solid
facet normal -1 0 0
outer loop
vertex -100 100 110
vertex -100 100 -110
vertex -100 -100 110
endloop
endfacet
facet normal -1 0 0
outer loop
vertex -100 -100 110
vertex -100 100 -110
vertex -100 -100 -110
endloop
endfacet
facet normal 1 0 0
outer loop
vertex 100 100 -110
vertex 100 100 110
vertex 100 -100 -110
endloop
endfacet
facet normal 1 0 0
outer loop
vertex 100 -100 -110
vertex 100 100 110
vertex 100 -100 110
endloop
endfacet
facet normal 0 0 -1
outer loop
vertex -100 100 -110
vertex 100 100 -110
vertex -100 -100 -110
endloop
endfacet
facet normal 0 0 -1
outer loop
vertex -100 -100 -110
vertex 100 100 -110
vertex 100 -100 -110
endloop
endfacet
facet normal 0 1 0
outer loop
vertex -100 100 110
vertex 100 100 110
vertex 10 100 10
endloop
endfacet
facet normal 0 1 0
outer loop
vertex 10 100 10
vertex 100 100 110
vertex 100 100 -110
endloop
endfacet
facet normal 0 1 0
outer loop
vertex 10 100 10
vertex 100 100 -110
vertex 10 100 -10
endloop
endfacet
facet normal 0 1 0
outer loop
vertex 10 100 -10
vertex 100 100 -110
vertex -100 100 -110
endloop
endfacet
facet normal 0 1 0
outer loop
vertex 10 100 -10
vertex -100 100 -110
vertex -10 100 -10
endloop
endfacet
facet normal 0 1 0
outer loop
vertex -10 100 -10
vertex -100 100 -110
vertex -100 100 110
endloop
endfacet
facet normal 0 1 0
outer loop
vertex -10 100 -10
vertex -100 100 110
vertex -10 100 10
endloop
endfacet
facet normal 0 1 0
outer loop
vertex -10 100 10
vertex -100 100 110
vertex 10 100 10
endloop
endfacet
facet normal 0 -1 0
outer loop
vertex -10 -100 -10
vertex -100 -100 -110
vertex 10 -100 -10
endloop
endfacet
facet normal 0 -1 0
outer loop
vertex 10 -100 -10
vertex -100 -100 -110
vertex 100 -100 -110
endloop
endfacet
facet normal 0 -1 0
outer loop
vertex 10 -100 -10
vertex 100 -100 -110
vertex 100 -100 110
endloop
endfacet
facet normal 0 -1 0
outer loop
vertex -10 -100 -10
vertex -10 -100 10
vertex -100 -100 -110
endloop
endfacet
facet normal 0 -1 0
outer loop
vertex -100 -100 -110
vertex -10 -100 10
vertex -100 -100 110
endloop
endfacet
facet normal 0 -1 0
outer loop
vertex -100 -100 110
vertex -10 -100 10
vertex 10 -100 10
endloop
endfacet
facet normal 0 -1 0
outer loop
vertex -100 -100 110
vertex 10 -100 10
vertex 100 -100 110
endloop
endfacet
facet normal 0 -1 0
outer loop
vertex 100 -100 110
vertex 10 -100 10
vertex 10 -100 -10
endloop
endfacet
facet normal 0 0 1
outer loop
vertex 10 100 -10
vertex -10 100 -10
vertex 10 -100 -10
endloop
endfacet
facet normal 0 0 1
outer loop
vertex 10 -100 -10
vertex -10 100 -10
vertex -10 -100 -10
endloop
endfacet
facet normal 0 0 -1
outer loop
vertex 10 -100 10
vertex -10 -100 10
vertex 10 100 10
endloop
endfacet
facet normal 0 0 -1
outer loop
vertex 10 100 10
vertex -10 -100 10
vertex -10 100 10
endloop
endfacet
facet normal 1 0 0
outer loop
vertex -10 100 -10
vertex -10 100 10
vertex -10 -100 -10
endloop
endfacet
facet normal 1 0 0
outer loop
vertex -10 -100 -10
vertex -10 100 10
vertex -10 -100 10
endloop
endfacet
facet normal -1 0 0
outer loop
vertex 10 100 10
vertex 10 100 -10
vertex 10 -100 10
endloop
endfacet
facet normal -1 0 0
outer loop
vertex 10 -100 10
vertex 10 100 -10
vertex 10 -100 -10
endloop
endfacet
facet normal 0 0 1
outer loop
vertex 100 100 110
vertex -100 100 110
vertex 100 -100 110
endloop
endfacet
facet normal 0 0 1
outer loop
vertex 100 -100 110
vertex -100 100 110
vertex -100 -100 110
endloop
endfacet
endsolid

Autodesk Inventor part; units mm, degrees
ref_plane "YZ Plane" through (0, 0, 0) normal (1, 0, 0) x (0, 1, 0)
ref_plane "XZ Plane" through (0, 0, 0) normal (0, 1, 0) x (-1, 0, 0)
ref_plane "XY Plane" through (0, 0, 0) normal (0, 0, 1) x (1, 0, 0)
sketch "Sketch4" plane through (0, 0, 0) normal (0, 1, 0) x (-1, 0, 0)
  line L0 (100, 110) -> (-100, 110)
  line L1 (-100, 110) -> (-100, 10)
  line L2 (-100, 10) -> (100, 10)
  line L3 (100, 10) -> (100, 110)
  line L4 (100, 110) -> (-100, 10) construction
  line L5 (-100, 110) -> (100, 10) construction
  line L6 (100, 110) -> (-100, 110)
  line L7 (-100, 110) -> (-100, 10)
  line L8 (-100, 10) -> (100, 10)
  line L9 (100, 10) -> (100, 110)
  line L10 (100, 110) -> (-100, 10) construction
  line L11 (-100, 110) -> (100, 10) construction
  line L12 (100, -10) -> (-100, -10)
  line L13 (-100, -10) -> (-100, -110)
  line L14 (-100, -110) -> (100, -110)
  line L15 (100, -110) -> (100, -10)
  line L16 (100, -10) -> (-100, -110) construction
  line L17 (-100, -10) -> (100, -110) construction
  point P0 (0, 0)
  point P1 (0, 60)
  point P2 (0, 60)
  point P3 (0, -60)
  dimension "d8" = 200
  dimension "d9" = 100
  dimension "d12" = 200
  dimension "d13" = 100
  dimension "d14" = 200
  dimension "d15" = 100
sketch "Sketch5" plane through (0, 0, 0) normal (0, 1, 0) x (-1, 0, 0)
  line L0 (100, 10) -> (10, 10)
  line L1 (10, 10) -> (10, -10)
  line L2 (10, -10) -> (100, -10)
  line L3 (100, -10) -> (100, 10)
  line L4 (100, 10) -> (10, -10) construction
  line L5 (10, 10) -> (100, -10) construction
  line L6 (100, 10) -> (10, 10)
  line L7 (10, 10) -> (10, -10)
  line L8 (10, -10) -> (100, -10)
  line L9 (100, -10) -> (100, 10)
  line L10 (100, 10) -> (10, -10) construction
  line L11 (10, 10) -> (100, -10) construction
  line L12 (-10, 10) -> (-100, 10)
  line L13 (-100, 10) -> (-100, -10)
  line L14 (-100, -10) -> (-10, -10)
  line L15 (-10, -10) -> (-10, 10)
  line L16 (-10, 10) -> (-100, -10) construction
  line L17 (-100, 10) -> (-10, -10) construction
  point P0 (0, 0)
  point P1 (55, 0)
  point P2 (55, 0)
  point P3 (-55, 0)
  dimension "d10" = 90
  dimension "d11" = 20
  dimension "d16" = 90
  dimension "d17" = 20
  dimension "d18" = 90
  dimension "d19" = 20
extrude "Extrusion1" add sketch "Sketch4" along normal mid plane 200
extrude "Extrusion2" add sketch "Sketch5" along normal mid plane 200
properties part number "four-blocks"
